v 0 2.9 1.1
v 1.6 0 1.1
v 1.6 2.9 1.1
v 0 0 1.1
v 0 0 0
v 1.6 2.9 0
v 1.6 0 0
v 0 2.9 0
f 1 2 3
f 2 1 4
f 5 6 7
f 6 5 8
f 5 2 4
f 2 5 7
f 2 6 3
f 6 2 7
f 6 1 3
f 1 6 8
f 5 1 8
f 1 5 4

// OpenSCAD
/* Warning, this is a very basic generator with a lot of approximation 
input data : [TSOT, NMB, 1.6x2.9x1.1mm, 5, , B, C04-21344B]
generated by com.zoubworld.electronics.cad.model3d.Basic
Date : Sun Feb 15 10:50:49 CET 2026
*/

//body
color("black")
translate([0,0,0])
cube([1.6,2.9,1.1], center=false);
